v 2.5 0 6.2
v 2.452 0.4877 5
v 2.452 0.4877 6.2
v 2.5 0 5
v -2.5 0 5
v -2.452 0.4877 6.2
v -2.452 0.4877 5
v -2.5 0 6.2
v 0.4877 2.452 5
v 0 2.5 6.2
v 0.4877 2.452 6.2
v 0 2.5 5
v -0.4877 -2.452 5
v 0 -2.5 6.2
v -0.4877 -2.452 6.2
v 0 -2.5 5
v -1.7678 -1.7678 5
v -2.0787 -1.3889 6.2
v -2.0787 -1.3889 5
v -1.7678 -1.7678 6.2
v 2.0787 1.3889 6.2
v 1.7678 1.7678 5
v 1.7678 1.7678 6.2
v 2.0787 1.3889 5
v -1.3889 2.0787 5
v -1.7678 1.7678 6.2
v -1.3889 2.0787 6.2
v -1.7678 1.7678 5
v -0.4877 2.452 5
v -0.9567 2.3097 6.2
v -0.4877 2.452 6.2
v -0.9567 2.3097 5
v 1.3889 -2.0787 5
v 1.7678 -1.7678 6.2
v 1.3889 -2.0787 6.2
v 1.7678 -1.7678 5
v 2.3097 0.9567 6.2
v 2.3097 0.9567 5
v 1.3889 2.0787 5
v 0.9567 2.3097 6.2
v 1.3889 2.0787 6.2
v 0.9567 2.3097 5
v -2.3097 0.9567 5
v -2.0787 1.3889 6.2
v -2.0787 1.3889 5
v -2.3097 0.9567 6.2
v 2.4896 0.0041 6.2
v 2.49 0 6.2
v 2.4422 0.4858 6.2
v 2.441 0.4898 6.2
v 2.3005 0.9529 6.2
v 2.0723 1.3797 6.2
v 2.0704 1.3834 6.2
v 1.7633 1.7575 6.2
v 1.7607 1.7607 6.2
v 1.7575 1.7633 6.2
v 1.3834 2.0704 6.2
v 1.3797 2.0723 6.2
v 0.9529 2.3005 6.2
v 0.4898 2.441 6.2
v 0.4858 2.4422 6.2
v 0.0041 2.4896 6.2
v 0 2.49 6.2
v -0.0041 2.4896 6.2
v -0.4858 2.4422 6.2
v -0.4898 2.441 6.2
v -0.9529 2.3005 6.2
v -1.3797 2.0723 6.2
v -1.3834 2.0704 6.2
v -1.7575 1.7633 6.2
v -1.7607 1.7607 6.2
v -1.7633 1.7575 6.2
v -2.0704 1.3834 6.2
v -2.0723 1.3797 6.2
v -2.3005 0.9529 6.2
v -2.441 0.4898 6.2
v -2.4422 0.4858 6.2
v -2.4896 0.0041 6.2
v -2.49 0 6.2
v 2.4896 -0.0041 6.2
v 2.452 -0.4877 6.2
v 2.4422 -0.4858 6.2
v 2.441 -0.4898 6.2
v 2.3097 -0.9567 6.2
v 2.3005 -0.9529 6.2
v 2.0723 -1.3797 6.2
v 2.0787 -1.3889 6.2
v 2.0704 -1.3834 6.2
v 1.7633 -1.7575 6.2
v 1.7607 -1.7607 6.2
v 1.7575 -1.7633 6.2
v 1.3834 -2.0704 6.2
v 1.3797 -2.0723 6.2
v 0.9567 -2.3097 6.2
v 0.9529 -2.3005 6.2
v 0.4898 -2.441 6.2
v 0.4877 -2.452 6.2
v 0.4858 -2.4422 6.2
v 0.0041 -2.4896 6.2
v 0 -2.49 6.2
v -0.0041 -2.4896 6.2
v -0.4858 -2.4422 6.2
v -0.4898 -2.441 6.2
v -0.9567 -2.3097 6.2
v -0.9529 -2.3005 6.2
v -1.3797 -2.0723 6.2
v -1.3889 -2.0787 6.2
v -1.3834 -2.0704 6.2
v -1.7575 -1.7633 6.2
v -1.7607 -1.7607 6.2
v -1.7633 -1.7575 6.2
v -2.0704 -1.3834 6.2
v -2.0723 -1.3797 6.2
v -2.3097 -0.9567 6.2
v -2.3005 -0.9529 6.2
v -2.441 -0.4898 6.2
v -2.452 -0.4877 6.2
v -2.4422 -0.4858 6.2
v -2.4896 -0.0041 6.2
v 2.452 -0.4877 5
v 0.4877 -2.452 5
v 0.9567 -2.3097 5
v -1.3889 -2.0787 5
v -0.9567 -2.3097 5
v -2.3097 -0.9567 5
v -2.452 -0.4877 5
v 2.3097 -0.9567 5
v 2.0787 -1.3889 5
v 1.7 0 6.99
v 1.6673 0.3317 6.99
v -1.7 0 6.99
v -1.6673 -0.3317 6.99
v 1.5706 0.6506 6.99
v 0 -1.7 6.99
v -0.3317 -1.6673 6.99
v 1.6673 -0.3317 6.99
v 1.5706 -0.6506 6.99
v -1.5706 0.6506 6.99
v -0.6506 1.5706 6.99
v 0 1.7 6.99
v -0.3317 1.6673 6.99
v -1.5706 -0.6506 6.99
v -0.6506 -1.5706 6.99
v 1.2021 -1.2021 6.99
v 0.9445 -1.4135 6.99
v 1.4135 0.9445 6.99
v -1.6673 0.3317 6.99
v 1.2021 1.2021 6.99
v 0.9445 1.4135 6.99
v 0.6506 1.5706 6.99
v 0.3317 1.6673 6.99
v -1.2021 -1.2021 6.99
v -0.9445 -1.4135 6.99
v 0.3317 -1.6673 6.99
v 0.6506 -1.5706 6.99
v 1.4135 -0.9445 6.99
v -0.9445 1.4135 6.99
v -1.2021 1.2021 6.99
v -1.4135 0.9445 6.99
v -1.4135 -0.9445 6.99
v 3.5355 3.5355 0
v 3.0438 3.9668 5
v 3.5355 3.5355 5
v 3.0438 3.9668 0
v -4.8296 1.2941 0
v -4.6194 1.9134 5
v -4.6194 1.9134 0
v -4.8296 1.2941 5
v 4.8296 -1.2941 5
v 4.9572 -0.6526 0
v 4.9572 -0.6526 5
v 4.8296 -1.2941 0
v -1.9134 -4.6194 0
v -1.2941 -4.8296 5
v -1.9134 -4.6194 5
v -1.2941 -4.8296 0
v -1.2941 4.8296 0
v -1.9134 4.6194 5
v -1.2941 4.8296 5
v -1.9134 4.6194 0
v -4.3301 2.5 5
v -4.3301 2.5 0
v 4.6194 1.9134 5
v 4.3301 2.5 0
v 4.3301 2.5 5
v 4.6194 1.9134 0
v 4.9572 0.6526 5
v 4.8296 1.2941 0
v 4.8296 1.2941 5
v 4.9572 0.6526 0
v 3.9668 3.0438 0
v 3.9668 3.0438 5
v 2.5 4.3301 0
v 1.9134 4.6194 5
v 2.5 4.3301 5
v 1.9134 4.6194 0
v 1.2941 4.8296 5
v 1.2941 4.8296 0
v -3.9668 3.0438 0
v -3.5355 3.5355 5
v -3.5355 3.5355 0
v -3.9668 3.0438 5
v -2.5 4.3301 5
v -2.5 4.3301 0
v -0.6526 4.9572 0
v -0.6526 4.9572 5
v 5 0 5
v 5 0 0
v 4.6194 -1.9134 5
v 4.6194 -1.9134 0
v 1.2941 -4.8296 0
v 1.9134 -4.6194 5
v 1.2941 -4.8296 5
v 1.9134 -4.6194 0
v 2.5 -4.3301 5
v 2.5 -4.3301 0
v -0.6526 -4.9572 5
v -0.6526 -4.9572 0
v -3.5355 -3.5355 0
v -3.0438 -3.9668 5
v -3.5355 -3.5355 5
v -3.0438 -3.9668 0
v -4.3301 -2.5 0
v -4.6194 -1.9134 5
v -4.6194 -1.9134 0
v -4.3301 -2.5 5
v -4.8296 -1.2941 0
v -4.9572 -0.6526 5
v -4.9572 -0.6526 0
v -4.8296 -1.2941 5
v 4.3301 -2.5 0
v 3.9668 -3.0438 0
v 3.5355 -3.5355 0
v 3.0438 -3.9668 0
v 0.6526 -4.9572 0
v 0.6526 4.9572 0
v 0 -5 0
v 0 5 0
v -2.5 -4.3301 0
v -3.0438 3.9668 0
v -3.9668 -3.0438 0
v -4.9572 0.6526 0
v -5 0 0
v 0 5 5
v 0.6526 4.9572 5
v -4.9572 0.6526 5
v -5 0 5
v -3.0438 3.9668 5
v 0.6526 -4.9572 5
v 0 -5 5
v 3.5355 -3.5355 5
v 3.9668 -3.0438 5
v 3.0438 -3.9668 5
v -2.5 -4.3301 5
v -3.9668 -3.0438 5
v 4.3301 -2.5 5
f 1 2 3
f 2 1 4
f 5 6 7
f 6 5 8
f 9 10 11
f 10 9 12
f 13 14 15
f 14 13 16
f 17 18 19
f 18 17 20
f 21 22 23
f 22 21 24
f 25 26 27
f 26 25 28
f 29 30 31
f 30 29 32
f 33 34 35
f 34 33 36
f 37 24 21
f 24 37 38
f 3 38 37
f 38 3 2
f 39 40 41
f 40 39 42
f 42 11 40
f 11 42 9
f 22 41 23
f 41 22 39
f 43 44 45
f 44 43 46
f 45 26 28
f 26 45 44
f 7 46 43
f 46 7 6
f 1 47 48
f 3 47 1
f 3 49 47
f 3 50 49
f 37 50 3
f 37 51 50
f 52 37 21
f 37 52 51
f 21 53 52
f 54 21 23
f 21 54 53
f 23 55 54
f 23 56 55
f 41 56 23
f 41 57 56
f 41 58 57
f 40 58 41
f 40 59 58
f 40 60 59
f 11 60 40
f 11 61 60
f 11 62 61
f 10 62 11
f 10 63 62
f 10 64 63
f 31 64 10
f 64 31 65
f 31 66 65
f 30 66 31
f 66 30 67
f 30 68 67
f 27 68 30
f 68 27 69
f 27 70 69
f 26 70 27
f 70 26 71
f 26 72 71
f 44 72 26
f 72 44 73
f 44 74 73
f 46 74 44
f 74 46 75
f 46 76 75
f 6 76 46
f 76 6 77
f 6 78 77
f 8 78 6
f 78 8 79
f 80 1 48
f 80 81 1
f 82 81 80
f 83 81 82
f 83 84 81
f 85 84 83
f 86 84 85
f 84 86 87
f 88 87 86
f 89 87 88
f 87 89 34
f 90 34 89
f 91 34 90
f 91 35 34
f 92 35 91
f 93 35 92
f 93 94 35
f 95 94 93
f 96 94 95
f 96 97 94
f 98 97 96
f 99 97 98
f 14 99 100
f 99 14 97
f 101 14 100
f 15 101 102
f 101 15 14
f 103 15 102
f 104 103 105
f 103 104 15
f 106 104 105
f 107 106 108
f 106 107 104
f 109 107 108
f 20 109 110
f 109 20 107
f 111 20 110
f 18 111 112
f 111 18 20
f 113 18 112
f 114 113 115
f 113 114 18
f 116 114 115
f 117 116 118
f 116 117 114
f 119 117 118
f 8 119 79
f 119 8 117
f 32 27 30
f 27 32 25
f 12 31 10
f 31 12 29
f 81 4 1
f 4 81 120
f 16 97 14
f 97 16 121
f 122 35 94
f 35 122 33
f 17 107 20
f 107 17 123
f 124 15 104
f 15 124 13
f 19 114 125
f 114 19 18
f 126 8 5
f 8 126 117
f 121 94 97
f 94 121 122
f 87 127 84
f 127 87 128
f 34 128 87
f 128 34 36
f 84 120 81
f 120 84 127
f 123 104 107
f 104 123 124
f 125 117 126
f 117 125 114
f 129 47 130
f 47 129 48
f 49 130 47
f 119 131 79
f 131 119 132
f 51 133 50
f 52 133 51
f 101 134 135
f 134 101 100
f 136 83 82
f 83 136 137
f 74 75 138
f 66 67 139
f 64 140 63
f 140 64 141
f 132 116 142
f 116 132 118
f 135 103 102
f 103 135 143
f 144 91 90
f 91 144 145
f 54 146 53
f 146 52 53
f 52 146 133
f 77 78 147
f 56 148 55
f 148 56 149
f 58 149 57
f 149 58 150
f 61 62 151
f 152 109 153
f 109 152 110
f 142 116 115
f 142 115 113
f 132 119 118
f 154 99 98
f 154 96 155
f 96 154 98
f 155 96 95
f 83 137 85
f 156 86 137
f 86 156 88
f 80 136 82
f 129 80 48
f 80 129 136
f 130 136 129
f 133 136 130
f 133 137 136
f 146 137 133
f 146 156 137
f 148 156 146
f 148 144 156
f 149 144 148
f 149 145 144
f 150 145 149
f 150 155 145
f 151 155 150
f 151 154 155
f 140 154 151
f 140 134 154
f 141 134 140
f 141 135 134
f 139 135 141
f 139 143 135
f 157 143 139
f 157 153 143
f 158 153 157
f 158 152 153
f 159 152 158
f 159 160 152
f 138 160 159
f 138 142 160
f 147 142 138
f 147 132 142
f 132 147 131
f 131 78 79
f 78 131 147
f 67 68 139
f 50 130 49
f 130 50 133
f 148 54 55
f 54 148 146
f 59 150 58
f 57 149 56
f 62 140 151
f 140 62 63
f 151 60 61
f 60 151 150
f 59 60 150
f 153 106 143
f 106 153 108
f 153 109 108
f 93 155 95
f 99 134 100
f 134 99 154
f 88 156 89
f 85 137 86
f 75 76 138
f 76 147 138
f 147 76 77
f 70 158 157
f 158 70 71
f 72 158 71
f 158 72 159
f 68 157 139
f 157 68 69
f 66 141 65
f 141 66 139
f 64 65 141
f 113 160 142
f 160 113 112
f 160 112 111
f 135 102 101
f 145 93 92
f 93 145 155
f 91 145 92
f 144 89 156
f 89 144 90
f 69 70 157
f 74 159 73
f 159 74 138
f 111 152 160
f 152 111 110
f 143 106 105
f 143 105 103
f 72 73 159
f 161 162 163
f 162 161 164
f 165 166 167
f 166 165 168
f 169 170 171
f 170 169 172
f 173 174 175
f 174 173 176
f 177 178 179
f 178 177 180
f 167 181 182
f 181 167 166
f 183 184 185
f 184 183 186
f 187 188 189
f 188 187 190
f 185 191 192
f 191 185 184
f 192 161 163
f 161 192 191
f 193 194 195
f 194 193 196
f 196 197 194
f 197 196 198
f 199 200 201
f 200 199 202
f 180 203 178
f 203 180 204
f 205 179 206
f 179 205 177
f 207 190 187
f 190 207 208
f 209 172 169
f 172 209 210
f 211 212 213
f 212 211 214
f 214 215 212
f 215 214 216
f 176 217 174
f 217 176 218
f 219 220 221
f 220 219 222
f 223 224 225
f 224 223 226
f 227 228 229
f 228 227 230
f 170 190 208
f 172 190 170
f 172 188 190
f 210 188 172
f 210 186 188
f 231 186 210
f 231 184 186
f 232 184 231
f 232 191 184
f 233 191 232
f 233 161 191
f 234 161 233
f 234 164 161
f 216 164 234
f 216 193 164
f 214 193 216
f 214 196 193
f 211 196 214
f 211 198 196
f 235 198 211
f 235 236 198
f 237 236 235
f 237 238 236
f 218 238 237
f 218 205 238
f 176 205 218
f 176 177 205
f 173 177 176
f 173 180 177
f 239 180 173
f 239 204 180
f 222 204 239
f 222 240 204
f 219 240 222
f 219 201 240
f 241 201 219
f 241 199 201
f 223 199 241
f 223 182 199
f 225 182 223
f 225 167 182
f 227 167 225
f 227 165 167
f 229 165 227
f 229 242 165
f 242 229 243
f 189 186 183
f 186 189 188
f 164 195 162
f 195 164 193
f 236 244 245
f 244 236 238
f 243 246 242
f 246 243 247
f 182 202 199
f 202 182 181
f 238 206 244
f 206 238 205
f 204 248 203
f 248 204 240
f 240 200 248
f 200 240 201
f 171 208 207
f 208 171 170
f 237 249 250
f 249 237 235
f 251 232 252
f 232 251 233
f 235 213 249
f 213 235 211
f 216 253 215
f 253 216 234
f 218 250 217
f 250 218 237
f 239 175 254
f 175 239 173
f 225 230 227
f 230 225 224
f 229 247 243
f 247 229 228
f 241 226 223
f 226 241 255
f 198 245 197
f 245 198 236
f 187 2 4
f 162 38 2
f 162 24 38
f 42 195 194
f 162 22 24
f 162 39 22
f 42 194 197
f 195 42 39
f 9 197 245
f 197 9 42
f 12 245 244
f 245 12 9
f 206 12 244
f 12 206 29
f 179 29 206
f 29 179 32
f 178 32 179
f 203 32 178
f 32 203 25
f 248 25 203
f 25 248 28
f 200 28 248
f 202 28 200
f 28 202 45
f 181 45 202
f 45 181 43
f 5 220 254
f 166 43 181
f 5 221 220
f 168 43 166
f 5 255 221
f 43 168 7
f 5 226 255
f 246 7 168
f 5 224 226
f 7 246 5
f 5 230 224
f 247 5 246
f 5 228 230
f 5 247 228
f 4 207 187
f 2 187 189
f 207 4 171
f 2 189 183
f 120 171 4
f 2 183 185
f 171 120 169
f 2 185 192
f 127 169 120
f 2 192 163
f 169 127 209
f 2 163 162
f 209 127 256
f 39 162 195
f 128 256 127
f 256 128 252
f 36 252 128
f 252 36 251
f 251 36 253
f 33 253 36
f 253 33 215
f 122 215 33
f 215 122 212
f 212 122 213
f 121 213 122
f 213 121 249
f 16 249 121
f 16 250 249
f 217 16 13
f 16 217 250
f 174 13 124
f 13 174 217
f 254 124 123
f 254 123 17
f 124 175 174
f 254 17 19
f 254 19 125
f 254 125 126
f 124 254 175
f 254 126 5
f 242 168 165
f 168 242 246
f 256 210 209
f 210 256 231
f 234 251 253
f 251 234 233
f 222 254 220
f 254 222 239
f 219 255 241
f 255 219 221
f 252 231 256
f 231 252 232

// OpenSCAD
// =====================================================================
//  foot.scad  -  separater Steck-Fuß (Kabelbox-Stil)
//  Zylinder Ø2*foot_r × foot_h mit Zapfen Ø peg_d × peg_h nach OBEN; wird
//  von unten in das Boden-Sackloch gesteckt. Zapfen zeigt nach oben ->
//  stützenfrei druckbar (Fußkörper liegt beim Druck auf der Platte).
//  Render einzeln:  openscad -o foot.stl foot.scad
// =====================================================================
include <params.scad>

// Kanonischer Fuß am Ursprung: Körper z=0..foot_h, Zapfen z=foot_h..+peg_h.
module corner_foot() {
    cylinder(d = 2*foot_r, h = foot_h, $fn = 48);
    // Zapfen mit kleiner Einführfase an der Spitze
    translate([0, 0, foot_h - 0.01]) {
        cylinder(d = peg_d, h = peg_h - peg_chamfer + 0.01, $fn = 32);
        translate([0, 0, peg_h - peg_chamfer])
            cylinder(d1 = peg_d, d2 = peg_d - 2*peg_chamfer, h = peg_chamfer, $fn = 32);
    }
}

// 4 Füße an den Eckpositionen, Körper unter dem Boden (z = -foot_h).
module corner_feet()
    for (p = foot_pts())
        translate([p[0], p[1], -foot_h]) corner_foot();

corner_foot();
